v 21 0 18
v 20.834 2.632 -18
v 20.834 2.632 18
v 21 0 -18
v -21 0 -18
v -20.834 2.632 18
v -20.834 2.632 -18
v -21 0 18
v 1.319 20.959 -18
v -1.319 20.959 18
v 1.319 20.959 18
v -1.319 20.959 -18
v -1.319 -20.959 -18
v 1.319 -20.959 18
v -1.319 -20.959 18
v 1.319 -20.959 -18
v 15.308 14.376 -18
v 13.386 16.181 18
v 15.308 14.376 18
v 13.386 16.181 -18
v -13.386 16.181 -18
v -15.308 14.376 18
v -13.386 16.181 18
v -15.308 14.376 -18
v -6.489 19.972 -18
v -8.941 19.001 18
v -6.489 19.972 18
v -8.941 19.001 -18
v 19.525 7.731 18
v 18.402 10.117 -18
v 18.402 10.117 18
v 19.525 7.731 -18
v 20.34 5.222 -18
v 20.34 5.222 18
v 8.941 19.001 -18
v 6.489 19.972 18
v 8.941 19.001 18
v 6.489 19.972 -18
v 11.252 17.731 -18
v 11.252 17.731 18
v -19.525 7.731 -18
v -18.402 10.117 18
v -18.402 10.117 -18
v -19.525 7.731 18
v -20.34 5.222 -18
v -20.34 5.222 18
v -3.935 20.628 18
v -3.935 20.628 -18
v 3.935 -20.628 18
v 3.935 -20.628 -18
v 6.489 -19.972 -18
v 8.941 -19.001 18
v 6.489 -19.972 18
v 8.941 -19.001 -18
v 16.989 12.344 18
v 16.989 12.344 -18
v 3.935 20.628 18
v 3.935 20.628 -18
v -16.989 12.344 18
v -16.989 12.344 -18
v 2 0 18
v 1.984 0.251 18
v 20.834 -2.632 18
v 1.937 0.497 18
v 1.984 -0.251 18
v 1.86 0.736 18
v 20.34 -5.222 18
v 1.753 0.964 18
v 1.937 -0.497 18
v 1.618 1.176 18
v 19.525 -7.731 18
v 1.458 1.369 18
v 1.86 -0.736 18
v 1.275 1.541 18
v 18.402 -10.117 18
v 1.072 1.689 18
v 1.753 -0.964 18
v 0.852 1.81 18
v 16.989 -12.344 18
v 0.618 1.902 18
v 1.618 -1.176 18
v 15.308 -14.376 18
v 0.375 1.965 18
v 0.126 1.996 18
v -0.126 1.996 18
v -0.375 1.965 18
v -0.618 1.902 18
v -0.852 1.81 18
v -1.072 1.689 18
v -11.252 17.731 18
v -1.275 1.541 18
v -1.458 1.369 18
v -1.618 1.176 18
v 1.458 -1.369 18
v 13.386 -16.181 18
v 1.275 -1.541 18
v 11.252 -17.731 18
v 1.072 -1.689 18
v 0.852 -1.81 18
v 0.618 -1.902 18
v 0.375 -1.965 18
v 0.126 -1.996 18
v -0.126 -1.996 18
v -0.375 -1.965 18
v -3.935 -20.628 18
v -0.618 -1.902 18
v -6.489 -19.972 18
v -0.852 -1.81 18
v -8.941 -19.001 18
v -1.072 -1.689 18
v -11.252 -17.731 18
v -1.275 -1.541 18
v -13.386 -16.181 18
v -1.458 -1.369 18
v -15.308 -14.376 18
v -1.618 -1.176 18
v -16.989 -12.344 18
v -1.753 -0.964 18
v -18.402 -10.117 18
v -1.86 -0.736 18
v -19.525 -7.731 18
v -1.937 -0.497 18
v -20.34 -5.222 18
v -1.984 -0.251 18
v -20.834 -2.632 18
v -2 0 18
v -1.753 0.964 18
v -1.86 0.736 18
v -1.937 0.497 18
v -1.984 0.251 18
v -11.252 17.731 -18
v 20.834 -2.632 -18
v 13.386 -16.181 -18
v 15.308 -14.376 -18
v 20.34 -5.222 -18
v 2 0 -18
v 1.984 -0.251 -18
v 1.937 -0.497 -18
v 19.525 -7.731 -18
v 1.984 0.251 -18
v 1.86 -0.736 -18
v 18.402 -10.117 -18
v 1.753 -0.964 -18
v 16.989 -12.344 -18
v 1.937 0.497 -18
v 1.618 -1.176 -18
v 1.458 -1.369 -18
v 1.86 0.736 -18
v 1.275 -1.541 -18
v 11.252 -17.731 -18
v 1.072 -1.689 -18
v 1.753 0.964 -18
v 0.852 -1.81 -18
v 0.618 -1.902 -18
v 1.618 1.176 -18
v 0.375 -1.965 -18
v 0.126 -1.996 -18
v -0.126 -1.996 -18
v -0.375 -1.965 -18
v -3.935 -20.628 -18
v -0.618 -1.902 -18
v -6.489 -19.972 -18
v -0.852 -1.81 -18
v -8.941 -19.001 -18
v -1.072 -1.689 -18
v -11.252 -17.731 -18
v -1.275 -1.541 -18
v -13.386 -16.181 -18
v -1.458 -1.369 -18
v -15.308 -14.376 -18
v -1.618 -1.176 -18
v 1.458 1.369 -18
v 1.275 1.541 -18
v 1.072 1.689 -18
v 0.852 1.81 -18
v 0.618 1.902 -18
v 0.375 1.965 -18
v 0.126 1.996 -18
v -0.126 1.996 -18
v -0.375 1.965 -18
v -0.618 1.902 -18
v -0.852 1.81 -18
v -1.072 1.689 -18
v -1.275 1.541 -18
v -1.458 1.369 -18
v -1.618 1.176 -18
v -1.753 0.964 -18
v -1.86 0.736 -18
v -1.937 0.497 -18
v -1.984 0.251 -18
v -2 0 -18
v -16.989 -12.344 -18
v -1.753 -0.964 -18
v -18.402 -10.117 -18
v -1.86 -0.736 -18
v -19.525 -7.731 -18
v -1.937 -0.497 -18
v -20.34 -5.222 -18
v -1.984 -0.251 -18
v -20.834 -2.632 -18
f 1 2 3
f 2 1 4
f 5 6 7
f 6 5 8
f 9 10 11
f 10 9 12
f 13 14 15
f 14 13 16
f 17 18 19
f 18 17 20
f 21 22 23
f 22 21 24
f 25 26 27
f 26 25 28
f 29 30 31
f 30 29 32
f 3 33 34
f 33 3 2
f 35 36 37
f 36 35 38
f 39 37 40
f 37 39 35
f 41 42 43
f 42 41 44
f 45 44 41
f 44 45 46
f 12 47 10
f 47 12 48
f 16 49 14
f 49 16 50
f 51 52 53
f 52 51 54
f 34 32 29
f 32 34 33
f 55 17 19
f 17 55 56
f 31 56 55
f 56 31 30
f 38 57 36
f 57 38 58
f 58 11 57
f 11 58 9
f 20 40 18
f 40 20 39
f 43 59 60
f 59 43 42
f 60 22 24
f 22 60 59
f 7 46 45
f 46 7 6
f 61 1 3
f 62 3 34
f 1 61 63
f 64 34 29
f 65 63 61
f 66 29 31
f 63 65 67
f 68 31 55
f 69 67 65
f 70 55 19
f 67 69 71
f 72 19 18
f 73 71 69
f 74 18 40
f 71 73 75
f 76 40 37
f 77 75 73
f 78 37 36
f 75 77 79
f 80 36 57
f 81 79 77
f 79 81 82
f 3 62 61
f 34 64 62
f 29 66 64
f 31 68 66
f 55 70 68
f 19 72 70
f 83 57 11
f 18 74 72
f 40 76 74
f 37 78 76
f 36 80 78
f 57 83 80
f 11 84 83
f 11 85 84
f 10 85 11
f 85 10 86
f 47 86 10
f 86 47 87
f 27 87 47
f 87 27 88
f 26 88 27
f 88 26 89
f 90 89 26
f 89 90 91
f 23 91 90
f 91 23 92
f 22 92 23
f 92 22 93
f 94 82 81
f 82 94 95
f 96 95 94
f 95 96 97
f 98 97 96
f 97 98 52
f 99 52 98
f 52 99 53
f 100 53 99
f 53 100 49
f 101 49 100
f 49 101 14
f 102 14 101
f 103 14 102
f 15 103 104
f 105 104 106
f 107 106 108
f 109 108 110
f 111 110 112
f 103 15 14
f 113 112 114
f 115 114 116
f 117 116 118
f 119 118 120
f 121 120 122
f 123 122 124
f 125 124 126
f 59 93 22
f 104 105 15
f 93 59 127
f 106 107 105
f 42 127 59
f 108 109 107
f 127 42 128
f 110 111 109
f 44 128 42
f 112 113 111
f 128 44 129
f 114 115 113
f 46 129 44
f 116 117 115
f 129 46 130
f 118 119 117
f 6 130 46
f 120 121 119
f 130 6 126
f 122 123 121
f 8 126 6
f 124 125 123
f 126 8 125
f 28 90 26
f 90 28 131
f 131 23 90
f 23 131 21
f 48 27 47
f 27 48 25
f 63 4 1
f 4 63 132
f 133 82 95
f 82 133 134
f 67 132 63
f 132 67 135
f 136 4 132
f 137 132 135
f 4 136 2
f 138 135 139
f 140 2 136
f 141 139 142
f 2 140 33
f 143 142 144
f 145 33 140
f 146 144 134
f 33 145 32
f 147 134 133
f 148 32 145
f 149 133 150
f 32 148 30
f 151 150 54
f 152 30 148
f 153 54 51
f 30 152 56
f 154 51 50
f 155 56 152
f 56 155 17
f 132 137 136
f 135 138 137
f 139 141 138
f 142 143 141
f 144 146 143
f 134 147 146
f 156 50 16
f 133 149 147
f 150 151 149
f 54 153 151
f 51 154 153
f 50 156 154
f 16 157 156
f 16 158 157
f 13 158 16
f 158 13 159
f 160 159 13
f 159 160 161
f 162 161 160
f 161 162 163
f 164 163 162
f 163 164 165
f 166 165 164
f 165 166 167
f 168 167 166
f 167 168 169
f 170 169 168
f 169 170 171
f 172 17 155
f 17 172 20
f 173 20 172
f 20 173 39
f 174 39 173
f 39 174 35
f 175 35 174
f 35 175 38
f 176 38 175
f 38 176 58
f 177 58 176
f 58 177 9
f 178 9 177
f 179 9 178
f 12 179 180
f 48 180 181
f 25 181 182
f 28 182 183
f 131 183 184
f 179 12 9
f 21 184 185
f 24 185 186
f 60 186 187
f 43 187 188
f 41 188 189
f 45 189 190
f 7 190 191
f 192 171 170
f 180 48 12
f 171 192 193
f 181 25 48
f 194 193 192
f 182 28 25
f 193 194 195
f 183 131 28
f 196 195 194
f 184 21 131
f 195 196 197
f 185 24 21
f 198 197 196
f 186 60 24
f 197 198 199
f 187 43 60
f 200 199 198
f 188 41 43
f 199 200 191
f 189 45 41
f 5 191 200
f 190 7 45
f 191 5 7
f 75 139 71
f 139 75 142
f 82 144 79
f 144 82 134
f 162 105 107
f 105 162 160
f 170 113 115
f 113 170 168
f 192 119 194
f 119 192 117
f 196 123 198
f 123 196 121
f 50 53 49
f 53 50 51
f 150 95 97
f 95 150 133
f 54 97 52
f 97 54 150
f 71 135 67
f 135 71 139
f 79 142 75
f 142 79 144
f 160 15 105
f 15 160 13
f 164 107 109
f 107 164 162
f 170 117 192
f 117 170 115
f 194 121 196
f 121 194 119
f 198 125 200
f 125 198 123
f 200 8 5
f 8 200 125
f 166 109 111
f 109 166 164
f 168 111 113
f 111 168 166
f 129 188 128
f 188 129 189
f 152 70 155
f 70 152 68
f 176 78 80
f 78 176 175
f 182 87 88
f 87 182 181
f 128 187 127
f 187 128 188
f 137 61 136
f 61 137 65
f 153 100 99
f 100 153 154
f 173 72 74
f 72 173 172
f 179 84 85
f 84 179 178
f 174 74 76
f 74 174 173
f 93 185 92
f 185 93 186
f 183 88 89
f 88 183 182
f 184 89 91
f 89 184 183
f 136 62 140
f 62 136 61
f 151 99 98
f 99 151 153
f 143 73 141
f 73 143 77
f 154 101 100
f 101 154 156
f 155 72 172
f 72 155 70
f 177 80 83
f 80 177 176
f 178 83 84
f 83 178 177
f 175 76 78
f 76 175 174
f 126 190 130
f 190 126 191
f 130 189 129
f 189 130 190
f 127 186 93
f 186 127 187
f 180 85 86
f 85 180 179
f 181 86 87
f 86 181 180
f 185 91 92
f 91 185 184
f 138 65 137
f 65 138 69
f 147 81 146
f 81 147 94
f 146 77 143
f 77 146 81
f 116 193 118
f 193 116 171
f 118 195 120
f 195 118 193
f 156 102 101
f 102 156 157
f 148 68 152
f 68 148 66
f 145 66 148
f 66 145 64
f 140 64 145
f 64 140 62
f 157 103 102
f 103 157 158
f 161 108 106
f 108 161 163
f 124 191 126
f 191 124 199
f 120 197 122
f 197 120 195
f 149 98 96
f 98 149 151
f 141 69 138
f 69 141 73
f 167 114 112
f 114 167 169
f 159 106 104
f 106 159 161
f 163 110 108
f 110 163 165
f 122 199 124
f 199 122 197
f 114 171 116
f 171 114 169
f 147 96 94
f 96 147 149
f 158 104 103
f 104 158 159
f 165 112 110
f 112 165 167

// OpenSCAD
$fn = 50;


difference() {
	union() {
		translate(v = [0, 0, -18.0000000000]) {
			cylinder(h = 36, r = 21.0000000000);
		}
	}
	union() {
		translate(v = [0, 0, -100.0000000000]) {
			cylinder(h = 200, r = 2);
		}
	}
}
